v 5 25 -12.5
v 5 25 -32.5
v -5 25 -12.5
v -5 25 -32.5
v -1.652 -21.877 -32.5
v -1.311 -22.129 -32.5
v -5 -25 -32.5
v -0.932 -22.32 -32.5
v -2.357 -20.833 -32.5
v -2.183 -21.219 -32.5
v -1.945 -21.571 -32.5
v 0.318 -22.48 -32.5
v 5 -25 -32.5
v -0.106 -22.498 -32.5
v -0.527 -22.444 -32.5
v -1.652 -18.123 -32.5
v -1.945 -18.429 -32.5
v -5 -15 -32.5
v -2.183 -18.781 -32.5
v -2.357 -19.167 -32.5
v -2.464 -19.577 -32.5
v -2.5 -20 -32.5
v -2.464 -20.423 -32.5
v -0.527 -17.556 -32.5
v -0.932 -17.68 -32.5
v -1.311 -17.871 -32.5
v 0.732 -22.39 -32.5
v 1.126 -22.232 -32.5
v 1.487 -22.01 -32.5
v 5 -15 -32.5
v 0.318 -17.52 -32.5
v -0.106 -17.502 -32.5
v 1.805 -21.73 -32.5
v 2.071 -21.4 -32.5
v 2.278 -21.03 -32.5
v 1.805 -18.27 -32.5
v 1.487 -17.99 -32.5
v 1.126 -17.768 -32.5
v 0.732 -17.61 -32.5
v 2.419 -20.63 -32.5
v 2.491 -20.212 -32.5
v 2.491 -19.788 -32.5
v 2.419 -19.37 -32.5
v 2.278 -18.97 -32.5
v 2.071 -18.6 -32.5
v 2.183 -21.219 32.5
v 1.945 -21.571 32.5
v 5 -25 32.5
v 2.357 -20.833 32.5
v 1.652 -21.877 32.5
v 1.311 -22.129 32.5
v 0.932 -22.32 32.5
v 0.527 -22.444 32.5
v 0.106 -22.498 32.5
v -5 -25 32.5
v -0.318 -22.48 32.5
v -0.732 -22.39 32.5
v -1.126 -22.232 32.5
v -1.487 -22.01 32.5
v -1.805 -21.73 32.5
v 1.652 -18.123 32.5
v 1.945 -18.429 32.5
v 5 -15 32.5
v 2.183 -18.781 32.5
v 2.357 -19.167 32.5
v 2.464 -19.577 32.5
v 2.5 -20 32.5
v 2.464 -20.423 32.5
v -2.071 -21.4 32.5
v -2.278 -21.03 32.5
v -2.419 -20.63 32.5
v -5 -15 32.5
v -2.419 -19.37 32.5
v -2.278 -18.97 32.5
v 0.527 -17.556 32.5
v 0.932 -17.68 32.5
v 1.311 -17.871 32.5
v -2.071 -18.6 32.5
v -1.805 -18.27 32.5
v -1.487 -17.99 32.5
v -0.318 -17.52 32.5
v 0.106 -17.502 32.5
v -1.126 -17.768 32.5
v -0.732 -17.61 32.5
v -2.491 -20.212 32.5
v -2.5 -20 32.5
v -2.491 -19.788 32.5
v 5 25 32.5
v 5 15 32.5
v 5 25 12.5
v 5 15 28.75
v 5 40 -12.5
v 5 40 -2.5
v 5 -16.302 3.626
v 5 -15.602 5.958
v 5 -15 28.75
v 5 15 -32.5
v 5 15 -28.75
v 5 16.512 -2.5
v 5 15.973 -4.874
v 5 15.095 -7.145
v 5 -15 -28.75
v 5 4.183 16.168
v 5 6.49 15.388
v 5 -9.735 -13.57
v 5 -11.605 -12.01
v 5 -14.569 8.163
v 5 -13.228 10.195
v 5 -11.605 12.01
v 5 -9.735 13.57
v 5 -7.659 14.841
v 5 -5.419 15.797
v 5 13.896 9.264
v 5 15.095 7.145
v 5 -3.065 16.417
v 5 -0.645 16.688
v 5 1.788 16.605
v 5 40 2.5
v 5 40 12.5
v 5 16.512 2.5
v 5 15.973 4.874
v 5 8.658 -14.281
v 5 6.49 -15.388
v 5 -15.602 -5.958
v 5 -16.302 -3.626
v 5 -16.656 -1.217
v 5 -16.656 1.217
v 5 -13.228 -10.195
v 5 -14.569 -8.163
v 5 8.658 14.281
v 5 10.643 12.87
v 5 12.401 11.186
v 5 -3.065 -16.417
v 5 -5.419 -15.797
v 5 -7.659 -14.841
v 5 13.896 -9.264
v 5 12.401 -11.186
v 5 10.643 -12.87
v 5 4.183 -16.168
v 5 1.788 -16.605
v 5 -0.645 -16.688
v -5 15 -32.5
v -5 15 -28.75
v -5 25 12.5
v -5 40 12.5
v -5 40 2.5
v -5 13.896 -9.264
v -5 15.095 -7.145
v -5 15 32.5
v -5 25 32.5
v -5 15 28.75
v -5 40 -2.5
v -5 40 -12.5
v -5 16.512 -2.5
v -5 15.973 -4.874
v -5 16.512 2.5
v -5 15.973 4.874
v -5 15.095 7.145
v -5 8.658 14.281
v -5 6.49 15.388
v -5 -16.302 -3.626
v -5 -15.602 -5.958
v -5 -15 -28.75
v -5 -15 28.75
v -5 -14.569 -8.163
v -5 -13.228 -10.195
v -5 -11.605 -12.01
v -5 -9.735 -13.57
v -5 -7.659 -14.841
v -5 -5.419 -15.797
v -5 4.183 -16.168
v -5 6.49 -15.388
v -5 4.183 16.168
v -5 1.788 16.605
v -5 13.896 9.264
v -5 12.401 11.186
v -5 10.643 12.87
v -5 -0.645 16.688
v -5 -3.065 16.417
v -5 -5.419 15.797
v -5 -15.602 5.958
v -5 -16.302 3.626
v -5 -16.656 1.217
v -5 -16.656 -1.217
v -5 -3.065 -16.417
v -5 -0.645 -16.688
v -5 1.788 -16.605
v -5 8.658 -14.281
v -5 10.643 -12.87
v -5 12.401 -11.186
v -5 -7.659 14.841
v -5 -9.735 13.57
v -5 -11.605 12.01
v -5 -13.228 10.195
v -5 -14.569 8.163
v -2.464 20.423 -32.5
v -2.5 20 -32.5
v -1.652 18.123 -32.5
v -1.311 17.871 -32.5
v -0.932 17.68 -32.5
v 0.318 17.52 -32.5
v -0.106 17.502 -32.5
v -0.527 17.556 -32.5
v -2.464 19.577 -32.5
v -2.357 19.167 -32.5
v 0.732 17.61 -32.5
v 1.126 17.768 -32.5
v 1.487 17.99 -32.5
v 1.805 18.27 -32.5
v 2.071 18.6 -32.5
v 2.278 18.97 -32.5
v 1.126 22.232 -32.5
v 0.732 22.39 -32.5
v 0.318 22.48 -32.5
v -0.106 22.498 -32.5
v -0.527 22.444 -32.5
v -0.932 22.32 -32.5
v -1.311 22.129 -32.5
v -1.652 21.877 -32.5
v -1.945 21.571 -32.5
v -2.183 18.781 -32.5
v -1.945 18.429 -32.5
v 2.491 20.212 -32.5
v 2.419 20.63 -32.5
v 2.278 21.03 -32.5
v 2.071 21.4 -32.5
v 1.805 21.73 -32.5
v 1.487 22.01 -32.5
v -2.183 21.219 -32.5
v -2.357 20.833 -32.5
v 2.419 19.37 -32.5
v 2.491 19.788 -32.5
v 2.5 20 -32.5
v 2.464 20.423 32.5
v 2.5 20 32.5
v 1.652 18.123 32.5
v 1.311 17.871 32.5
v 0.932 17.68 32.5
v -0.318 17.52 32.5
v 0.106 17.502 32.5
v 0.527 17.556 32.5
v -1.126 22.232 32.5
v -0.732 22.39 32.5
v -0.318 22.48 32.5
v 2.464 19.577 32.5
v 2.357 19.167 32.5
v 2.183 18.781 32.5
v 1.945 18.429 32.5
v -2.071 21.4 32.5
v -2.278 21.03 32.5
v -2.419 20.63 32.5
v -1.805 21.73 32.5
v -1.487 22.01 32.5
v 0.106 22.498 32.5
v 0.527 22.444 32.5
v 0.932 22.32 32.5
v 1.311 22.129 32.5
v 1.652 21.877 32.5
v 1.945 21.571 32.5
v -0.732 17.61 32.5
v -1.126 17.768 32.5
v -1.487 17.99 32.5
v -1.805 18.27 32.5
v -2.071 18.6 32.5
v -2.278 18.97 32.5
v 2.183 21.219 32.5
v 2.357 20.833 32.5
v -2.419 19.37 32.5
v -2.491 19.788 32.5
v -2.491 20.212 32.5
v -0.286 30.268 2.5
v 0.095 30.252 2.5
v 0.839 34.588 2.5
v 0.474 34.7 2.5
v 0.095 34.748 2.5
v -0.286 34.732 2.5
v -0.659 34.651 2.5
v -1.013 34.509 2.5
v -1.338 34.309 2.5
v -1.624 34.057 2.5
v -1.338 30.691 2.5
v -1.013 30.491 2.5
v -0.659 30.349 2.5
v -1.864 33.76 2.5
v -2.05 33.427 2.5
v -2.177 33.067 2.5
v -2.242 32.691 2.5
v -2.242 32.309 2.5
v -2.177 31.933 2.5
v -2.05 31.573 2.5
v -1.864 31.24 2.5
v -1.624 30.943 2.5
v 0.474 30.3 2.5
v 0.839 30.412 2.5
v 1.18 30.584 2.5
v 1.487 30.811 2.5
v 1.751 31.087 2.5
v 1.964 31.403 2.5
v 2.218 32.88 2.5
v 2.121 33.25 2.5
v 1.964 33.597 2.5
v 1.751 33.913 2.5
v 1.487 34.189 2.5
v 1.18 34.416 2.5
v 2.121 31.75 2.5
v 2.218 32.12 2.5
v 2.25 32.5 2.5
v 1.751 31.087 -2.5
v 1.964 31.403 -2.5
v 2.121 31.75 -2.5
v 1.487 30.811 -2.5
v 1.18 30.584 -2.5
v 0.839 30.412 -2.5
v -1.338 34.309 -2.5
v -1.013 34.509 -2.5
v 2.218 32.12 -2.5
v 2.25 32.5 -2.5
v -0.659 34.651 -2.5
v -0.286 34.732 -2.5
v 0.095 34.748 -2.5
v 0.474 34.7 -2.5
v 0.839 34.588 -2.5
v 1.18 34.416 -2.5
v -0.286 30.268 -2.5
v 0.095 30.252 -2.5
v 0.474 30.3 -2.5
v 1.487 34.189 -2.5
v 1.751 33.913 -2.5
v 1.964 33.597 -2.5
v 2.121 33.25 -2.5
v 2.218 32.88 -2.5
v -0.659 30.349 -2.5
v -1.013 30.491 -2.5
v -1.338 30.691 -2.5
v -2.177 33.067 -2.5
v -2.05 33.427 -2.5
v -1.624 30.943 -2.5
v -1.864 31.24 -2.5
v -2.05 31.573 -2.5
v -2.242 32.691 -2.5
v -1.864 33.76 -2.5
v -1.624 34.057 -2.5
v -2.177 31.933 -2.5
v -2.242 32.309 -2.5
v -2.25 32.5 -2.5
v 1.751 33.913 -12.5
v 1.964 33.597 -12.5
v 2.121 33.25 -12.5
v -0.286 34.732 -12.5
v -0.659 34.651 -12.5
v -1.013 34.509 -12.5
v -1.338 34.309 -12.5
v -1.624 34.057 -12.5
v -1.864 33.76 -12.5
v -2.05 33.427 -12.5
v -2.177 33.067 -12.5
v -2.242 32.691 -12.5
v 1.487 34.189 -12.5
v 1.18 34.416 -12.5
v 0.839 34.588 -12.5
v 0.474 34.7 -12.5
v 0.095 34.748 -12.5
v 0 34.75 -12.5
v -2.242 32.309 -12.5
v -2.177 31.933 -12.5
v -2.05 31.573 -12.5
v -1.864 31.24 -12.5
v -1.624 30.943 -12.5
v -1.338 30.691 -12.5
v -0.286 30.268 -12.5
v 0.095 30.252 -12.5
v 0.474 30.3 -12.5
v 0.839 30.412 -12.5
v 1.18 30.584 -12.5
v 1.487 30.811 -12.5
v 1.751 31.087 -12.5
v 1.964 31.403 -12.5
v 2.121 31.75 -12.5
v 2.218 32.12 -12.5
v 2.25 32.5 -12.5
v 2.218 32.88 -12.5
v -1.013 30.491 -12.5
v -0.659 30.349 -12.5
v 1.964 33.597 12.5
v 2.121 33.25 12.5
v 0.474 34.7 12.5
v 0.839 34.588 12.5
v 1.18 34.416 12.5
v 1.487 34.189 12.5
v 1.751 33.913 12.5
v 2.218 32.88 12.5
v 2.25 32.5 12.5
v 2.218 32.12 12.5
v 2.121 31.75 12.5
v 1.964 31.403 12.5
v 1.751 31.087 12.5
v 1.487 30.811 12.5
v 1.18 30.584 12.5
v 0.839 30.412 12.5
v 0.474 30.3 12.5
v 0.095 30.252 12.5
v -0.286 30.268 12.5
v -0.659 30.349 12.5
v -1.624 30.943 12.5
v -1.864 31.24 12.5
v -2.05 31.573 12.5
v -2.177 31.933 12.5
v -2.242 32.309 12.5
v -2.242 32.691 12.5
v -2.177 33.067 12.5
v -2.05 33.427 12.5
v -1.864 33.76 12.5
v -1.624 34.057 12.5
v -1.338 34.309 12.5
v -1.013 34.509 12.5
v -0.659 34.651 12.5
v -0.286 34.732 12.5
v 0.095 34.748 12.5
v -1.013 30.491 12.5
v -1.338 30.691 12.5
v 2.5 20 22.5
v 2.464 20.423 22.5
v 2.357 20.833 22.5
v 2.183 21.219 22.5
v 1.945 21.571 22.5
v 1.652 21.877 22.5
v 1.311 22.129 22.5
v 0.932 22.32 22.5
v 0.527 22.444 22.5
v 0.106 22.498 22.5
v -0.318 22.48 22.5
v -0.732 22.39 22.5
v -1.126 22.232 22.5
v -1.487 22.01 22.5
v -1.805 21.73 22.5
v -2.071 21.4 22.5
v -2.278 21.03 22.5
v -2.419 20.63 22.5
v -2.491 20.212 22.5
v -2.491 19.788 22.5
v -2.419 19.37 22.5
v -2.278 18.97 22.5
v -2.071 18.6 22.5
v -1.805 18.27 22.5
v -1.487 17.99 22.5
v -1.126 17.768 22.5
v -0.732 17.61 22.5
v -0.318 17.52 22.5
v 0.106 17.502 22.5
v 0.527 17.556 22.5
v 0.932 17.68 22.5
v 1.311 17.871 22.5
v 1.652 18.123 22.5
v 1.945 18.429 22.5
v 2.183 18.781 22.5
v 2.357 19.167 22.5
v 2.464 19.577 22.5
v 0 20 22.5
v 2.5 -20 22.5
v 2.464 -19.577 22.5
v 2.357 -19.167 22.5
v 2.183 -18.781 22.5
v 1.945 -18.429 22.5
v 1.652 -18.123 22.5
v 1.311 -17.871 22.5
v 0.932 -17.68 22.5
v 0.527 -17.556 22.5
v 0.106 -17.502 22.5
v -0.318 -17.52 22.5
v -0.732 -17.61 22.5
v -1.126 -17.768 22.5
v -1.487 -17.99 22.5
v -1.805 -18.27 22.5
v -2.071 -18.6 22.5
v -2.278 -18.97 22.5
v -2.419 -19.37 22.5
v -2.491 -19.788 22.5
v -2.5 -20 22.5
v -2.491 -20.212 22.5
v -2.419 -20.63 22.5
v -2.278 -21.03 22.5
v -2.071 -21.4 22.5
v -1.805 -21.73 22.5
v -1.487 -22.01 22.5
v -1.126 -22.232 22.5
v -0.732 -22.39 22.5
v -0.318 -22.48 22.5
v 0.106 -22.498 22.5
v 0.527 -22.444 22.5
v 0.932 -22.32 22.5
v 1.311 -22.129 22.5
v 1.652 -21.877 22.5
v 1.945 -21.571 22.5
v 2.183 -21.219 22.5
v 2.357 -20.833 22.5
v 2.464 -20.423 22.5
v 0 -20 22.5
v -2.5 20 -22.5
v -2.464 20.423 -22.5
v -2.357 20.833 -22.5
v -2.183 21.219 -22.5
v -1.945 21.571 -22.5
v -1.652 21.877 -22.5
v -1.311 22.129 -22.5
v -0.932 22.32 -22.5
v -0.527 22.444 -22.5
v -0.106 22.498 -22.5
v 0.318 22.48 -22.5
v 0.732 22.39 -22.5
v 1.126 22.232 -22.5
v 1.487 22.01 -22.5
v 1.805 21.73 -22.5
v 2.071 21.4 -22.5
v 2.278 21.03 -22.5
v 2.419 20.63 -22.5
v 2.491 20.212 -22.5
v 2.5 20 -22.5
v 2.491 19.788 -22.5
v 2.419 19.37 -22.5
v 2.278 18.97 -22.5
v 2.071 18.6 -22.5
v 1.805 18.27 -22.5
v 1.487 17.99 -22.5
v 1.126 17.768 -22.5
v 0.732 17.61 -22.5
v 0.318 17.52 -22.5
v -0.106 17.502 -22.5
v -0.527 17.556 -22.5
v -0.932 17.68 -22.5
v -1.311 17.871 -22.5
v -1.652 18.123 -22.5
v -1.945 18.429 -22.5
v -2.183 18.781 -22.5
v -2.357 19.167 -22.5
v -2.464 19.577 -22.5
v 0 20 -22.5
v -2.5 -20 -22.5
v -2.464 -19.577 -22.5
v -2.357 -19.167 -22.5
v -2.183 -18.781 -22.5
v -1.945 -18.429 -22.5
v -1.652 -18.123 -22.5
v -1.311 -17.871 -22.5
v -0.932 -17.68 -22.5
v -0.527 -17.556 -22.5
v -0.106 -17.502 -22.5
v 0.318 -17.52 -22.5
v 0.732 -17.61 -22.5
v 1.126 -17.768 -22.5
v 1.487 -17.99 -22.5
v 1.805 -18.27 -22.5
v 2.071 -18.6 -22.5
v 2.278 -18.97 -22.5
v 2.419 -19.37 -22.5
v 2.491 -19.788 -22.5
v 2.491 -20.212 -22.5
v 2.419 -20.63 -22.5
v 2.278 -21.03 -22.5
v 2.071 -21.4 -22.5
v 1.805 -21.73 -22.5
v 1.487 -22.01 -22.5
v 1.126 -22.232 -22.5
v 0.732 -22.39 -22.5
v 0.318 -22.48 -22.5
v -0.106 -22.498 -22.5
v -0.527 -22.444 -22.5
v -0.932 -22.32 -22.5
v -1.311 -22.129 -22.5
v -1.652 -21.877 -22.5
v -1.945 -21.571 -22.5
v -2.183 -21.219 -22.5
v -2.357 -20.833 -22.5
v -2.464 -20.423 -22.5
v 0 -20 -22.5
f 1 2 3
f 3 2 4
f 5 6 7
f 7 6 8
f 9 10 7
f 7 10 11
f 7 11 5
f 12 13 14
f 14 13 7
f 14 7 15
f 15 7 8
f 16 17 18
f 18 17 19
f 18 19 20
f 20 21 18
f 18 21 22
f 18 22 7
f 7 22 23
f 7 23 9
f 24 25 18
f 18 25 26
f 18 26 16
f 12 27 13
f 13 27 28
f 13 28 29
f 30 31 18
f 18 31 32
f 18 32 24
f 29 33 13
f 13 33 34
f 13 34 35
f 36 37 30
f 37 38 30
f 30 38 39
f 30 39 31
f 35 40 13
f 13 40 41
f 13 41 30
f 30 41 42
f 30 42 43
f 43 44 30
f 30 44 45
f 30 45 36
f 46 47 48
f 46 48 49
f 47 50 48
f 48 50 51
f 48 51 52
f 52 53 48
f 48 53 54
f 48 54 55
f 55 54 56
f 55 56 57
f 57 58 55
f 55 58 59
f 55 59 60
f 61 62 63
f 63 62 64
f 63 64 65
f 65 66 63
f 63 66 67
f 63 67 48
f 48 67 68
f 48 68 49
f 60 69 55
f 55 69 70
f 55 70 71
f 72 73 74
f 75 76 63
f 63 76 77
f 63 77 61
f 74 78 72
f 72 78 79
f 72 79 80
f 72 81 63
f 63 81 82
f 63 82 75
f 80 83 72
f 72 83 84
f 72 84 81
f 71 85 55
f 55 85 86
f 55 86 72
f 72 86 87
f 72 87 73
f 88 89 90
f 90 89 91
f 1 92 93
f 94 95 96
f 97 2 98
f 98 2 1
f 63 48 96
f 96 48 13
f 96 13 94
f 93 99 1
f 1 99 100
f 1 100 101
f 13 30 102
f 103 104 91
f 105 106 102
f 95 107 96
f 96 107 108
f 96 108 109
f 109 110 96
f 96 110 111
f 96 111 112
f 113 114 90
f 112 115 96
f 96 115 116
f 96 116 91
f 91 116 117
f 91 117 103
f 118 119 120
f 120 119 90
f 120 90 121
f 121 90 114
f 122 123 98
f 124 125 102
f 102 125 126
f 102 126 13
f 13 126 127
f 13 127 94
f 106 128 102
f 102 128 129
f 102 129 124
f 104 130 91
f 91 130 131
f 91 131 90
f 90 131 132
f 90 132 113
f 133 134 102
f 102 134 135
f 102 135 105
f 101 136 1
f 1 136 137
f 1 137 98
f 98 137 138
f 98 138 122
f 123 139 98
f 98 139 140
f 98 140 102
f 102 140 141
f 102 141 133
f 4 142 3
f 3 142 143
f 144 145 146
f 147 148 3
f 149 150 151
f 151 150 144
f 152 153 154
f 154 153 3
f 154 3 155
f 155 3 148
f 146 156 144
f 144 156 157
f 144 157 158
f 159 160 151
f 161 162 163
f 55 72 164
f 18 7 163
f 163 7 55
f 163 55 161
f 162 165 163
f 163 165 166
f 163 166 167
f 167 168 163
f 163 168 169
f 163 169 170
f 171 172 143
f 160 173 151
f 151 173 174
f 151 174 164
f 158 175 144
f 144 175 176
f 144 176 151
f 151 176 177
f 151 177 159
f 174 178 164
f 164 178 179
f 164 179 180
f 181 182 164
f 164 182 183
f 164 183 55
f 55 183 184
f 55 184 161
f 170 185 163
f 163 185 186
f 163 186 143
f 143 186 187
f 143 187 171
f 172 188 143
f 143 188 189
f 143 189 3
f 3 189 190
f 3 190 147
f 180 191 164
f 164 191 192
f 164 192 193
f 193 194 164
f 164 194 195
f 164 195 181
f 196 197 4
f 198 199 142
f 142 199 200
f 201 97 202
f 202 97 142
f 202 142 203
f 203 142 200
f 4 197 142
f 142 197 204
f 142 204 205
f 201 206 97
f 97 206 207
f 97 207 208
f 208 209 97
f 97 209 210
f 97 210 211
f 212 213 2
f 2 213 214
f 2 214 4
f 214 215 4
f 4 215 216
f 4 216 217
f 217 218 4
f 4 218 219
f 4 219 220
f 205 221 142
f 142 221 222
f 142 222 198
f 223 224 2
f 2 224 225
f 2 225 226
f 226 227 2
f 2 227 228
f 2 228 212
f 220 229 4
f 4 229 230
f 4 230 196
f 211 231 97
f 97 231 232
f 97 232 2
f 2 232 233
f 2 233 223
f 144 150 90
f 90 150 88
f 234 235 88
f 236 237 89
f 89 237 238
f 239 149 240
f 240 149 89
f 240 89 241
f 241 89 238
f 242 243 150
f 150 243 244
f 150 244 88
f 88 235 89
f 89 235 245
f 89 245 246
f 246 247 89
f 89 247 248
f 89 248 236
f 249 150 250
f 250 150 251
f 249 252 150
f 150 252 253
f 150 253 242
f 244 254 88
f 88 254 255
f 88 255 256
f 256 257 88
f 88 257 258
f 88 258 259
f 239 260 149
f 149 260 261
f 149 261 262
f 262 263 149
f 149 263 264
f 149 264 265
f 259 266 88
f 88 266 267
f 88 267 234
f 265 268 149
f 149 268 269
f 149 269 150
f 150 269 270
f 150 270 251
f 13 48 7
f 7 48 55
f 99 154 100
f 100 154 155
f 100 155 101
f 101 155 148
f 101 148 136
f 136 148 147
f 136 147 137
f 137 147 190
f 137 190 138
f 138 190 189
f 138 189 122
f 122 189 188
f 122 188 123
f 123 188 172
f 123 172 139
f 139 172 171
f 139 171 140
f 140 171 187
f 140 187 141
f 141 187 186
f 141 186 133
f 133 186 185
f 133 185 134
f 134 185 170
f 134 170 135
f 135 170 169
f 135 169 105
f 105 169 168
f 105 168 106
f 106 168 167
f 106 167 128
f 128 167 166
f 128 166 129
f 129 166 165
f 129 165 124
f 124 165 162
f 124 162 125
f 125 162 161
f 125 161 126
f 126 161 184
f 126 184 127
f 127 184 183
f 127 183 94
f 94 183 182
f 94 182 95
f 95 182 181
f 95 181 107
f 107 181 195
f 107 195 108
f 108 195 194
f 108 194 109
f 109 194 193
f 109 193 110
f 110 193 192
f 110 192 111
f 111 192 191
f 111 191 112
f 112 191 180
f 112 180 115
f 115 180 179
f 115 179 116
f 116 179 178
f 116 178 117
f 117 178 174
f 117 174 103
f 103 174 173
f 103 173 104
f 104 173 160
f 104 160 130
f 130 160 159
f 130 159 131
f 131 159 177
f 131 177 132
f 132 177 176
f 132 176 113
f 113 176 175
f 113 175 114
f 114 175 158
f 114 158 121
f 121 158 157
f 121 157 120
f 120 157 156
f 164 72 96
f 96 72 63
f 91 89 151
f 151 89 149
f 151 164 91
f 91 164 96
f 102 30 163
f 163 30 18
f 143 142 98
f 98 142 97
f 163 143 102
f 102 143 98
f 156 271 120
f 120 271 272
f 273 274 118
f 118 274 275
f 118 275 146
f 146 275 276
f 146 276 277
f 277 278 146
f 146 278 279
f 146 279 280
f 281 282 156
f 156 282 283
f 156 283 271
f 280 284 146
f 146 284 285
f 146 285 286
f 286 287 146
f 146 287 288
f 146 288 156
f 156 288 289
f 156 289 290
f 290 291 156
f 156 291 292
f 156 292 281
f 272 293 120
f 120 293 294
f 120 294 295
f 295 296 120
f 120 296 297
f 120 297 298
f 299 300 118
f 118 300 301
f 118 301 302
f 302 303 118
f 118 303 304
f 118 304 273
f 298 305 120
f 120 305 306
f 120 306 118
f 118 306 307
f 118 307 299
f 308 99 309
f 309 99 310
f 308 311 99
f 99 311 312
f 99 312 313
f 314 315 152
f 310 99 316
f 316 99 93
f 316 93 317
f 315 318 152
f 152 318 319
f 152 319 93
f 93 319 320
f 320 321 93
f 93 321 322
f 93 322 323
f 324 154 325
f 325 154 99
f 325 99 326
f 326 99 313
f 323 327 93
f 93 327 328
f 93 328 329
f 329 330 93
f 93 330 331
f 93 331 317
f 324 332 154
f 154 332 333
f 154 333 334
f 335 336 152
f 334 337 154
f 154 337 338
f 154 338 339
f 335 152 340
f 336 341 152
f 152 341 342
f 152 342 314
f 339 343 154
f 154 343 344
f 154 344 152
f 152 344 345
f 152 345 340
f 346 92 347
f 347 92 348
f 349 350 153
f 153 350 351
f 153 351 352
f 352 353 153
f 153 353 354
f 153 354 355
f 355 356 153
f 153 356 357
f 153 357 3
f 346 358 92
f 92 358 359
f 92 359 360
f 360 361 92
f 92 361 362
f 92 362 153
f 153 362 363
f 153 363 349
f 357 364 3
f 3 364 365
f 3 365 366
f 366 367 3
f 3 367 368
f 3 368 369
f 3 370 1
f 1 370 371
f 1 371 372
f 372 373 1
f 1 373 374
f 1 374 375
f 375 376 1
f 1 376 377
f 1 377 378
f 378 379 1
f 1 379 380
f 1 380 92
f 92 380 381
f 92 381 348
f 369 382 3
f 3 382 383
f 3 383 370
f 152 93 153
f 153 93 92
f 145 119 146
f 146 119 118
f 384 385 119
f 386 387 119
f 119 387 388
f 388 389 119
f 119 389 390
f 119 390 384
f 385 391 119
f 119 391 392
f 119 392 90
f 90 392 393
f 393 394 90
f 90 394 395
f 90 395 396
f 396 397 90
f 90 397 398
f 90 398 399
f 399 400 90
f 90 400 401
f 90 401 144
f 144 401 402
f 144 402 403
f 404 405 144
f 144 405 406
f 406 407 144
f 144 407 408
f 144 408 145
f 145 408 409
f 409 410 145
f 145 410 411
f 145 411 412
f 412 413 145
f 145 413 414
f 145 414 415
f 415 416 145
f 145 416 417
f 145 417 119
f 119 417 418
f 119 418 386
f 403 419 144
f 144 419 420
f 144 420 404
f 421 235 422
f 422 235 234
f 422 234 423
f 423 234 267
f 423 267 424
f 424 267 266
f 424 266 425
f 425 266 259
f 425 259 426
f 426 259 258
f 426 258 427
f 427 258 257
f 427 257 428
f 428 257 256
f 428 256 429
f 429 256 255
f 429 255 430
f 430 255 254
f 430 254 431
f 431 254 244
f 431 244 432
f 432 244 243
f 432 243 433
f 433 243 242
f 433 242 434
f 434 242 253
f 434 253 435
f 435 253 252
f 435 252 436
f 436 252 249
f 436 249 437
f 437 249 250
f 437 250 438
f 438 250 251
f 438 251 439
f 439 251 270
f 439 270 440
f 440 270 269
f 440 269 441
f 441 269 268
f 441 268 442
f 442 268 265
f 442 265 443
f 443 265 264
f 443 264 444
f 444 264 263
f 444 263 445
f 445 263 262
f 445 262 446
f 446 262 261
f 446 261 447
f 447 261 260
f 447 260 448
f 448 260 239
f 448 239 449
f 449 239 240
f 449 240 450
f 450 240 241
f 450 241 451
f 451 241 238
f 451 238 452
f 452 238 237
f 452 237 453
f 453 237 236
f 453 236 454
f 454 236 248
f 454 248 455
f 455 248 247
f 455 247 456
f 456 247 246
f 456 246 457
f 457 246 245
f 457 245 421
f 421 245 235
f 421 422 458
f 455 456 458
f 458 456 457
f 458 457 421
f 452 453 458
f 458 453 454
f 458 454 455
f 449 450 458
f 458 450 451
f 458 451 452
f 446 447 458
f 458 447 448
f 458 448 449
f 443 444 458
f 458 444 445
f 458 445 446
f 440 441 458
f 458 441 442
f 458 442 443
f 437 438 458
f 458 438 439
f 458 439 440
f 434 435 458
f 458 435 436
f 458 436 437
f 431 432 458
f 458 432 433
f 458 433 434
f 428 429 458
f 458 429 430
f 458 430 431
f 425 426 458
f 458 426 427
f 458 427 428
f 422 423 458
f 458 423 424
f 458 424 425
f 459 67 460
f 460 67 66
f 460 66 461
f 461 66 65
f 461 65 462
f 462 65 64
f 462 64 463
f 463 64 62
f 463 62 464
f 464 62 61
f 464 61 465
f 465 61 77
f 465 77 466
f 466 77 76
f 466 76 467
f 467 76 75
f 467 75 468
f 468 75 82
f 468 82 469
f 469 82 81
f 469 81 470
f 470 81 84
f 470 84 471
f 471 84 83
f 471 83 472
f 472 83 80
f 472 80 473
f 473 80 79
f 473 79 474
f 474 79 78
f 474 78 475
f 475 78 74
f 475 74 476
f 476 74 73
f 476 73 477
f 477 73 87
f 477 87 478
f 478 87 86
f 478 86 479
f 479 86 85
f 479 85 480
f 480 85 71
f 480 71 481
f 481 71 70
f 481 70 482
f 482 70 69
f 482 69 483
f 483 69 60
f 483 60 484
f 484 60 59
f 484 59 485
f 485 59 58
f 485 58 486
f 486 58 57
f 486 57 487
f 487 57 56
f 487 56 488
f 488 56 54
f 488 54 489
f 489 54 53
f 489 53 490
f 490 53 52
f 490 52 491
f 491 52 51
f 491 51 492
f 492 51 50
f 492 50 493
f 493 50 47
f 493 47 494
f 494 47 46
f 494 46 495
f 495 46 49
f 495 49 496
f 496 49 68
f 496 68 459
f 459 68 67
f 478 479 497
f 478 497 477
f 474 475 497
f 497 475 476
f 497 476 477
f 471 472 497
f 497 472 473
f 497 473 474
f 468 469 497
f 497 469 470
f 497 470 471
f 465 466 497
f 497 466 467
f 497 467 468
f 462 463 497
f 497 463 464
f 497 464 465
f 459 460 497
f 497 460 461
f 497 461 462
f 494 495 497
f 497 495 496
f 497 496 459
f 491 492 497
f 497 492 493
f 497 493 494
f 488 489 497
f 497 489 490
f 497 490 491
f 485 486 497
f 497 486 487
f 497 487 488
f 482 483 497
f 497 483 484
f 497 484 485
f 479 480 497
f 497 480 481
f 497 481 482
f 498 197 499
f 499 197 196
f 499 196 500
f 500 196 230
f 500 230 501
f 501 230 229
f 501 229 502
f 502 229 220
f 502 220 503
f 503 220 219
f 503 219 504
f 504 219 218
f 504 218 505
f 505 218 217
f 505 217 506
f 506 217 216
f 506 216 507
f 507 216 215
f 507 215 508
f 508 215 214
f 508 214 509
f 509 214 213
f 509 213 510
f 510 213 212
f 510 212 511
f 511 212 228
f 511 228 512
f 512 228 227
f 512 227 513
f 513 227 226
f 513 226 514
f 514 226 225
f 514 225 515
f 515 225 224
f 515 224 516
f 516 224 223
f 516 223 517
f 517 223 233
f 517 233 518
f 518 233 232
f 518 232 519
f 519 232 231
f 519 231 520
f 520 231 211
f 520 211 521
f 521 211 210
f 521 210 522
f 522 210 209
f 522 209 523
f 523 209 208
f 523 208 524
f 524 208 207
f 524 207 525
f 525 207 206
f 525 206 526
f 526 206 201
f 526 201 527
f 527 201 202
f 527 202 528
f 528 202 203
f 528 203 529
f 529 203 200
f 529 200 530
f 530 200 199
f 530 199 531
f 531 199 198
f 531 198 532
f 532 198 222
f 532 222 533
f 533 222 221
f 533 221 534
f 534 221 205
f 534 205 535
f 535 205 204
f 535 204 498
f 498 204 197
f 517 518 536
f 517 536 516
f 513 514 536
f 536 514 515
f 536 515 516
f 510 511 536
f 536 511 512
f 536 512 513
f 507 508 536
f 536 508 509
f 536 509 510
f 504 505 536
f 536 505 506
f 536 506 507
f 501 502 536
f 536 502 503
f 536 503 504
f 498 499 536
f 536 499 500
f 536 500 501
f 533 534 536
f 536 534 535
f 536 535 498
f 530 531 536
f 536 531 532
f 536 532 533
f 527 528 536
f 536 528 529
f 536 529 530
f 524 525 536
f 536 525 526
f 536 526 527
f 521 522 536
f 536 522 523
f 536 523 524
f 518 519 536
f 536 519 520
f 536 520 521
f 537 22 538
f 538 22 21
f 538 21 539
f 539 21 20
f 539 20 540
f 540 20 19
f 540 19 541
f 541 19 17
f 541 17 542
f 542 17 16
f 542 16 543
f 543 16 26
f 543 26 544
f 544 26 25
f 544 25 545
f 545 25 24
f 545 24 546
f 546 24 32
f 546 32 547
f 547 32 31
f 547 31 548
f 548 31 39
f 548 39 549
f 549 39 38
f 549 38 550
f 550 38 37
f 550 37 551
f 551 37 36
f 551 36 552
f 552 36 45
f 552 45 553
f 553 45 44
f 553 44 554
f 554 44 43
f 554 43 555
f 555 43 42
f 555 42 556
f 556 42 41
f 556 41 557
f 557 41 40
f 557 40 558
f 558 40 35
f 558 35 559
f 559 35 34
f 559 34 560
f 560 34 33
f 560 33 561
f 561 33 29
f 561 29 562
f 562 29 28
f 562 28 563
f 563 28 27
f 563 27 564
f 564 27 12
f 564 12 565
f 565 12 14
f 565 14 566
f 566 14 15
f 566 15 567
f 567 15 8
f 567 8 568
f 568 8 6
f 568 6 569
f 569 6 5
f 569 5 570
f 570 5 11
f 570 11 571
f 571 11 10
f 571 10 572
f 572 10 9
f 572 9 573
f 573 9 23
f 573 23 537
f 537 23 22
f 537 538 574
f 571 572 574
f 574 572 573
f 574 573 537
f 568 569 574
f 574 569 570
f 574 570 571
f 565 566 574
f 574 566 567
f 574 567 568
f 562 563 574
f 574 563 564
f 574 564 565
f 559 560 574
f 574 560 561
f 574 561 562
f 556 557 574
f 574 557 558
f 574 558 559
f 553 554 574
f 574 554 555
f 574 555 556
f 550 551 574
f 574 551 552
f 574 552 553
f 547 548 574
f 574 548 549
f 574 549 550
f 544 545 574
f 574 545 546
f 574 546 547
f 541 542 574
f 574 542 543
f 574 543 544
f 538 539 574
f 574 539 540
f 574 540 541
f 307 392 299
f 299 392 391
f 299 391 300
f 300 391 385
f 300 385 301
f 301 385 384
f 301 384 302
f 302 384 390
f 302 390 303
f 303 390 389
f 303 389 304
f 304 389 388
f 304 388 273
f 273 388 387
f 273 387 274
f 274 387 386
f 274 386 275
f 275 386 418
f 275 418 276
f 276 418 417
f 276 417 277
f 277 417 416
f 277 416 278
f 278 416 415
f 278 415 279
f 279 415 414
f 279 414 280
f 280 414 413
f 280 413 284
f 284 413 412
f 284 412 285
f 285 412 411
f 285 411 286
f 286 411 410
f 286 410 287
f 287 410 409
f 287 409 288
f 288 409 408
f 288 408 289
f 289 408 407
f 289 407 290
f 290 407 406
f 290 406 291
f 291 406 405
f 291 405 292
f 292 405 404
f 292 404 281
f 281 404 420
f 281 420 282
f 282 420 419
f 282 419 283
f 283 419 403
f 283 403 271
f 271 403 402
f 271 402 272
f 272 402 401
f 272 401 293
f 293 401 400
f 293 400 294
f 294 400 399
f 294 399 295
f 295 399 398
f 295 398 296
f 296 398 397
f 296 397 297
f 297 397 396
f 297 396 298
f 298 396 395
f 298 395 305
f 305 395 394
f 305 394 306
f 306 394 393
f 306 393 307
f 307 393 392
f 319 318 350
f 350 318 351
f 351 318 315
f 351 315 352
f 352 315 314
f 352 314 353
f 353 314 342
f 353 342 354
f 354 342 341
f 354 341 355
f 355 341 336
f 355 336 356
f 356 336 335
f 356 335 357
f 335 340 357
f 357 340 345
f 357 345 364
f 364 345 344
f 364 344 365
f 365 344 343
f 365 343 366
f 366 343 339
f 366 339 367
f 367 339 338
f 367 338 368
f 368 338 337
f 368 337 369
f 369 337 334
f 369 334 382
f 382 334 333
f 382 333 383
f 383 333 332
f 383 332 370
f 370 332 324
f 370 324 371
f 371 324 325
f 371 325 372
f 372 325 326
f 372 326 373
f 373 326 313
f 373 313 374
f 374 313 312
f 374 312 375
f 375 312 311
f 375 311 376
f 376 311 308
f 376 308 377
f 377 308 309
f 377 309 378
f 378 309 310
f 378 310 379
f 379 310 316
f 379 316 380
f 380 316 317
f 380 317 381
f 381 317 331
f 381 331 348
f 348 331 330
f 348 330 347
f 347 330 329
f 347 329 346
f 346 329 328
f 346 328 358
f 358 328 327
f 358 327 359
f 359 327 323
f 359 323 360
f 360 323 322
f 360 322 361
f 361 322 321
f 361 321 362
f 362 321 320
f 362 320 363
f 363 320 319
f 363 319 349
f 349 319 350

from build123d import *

# Parameters (mm, degrees)
CROQUIS1_W              = 65
CROQUIS1_H              = 50
CROQUIS1_R              = 16.7005
SALIENTE_EXTRUIR1_DEPTH = 5
CROQUIS2_W              = 7.5
CROQUIS2_H              = 30
CORTAR_EXTRUIR1_DEPTH   = 43.20485754
CROQUIS3_W              = 5
CROQUIS3_H              = 15
CORTAR_EXTRUIR2_DEPTH   = 43.20485754
CROQUIS4_W              = 10
CROQUIS4_H              = 15
SALIENTE_EXTRUIR2_DEPTH = 10
CROQUIS5_R              = 2.5
CORTAR_EXTRUIR3_DEPTH   = 10
CORTAR_EXTRUIR4_REACH   = 62.415
CROQUIS6_R              = 2.25


with BuildPart() as part:
    # Croquis1 → Saliente-Extruir1 (new, symmetric)
    with BuildSketch(Plane(origin=(0, 0, 0), x_dir=(0, 0, -1), z_dir=(1, 0, 0))):
        Rectangle(CROQUIS1_W, CROQUIS1_H)
        Circle(CROQUIS1_R, mode=Mode.SUBTRACT)
    extrude(amount=SALIENTE_EXTRUIR1_DEPTH, both=True)

    # Croquis2 → Cortar-Extruir1 (cut, through all)
    with BuildSketch(Plane(origin=(5, 0, 0), x_dir=(0, 0, -1), z_dir=(1, 0, 0))):
        with Locations((-32.5, 0)):
            Rectangle(CROQUIS2_W, CROQUIS2_H)
        with Locations((32.5, 0)):
            Rectangle(CROQUIS2_W, CROQUIS2_H)
    extrude(amount=-CORTAR_EXTRUIR1_DEPTH, mode=Mode.SUBTRACT)

    # Croquis3 → Cortar-Extruir2 (cut, through all)
    with BuildSketch(Plane(origin=(5, 0, 0), x_dir=(0, 0, -1), z_dir=(1, 0, 0))):
        with Locations((0, 20.85025)):
            Rectangle(CROQUIS3_W, CROQUIS3_H)
    extrude(amount=-CORTAR_EXTRUIR2_DEPTH, mode=Mode.SUBTRACT)

    # Croquis4 → Saliente-Extruir2 (add)
    with BuildSketch(Plane(origin=(5, 0, 0), x_dir=(0, 0, -1), z_dir=(1, 0, 0))):
        with Locations((-7.5, 32.5)):
            Rectangle(CROQUIS4_W, CROQUIS4_H)
        with Locations((7.5, 32.5)):
            Rectangle(CROQUIS4_W, CROQUIS4_H)
    extrude(amount=-SALIENTE_EXTRUIR2_DEPTH)

    # Croquis5 → Cortar-Extruir3 (cut)
    with BuildSketch(Plane.XY.offset(32.5)):
        with Locations((0, 20)):
            Circle(CROQUIS5_R)
        with Locations(Location((0, -20, 0), (0, 0, 180))):
            Circle(CROQUIS5_R)
    cortar_extruir3 = extrude(amount=-CORTAR_EXTRUIR3_DEPTH, mode=Mode.SUBTRACT)

    # Simetría1: Cortar-Extruir3 across plane
    add(cortar_extruir3.mirror(Plane.XY), mode=Mode.SUBTRACT)

    # Cortar-Extruir4: up to this face of the body (flat: up to its plane)
    cortar_extruir4_end = Plane(part.part.faces().sort_by_distance((0, 32.5, -12.5))[0])
    # Croquis6 → Cortar-Extruir4 (cut, up to the picked face)
    with BuildSketch(Plane.XY.offset(12.5), mode=Mode.PRIVATE) as cortar_extruir4_sk1:
        with Locations((0, 32.5)):
            Circle(CROQUIS6_R)
    cortar_extruir4_tool1 = split(extrude(cortar_extruir4_sk1.sketch, amount=-CORTAR_EXTRUIR4_REACH, mode=Mode.PRIVATE), bisect_by=cortar_extruir4_end, keep=Keep.BOTH, mode=Mode.PRIVATE)
    add(cortar_extruir4_tool1.solids().sort_by(Axis((0, 32.5, 12.5), (0, 0, -1)))[0], mode=Mode.SUBTRACT)


solid = part.part
